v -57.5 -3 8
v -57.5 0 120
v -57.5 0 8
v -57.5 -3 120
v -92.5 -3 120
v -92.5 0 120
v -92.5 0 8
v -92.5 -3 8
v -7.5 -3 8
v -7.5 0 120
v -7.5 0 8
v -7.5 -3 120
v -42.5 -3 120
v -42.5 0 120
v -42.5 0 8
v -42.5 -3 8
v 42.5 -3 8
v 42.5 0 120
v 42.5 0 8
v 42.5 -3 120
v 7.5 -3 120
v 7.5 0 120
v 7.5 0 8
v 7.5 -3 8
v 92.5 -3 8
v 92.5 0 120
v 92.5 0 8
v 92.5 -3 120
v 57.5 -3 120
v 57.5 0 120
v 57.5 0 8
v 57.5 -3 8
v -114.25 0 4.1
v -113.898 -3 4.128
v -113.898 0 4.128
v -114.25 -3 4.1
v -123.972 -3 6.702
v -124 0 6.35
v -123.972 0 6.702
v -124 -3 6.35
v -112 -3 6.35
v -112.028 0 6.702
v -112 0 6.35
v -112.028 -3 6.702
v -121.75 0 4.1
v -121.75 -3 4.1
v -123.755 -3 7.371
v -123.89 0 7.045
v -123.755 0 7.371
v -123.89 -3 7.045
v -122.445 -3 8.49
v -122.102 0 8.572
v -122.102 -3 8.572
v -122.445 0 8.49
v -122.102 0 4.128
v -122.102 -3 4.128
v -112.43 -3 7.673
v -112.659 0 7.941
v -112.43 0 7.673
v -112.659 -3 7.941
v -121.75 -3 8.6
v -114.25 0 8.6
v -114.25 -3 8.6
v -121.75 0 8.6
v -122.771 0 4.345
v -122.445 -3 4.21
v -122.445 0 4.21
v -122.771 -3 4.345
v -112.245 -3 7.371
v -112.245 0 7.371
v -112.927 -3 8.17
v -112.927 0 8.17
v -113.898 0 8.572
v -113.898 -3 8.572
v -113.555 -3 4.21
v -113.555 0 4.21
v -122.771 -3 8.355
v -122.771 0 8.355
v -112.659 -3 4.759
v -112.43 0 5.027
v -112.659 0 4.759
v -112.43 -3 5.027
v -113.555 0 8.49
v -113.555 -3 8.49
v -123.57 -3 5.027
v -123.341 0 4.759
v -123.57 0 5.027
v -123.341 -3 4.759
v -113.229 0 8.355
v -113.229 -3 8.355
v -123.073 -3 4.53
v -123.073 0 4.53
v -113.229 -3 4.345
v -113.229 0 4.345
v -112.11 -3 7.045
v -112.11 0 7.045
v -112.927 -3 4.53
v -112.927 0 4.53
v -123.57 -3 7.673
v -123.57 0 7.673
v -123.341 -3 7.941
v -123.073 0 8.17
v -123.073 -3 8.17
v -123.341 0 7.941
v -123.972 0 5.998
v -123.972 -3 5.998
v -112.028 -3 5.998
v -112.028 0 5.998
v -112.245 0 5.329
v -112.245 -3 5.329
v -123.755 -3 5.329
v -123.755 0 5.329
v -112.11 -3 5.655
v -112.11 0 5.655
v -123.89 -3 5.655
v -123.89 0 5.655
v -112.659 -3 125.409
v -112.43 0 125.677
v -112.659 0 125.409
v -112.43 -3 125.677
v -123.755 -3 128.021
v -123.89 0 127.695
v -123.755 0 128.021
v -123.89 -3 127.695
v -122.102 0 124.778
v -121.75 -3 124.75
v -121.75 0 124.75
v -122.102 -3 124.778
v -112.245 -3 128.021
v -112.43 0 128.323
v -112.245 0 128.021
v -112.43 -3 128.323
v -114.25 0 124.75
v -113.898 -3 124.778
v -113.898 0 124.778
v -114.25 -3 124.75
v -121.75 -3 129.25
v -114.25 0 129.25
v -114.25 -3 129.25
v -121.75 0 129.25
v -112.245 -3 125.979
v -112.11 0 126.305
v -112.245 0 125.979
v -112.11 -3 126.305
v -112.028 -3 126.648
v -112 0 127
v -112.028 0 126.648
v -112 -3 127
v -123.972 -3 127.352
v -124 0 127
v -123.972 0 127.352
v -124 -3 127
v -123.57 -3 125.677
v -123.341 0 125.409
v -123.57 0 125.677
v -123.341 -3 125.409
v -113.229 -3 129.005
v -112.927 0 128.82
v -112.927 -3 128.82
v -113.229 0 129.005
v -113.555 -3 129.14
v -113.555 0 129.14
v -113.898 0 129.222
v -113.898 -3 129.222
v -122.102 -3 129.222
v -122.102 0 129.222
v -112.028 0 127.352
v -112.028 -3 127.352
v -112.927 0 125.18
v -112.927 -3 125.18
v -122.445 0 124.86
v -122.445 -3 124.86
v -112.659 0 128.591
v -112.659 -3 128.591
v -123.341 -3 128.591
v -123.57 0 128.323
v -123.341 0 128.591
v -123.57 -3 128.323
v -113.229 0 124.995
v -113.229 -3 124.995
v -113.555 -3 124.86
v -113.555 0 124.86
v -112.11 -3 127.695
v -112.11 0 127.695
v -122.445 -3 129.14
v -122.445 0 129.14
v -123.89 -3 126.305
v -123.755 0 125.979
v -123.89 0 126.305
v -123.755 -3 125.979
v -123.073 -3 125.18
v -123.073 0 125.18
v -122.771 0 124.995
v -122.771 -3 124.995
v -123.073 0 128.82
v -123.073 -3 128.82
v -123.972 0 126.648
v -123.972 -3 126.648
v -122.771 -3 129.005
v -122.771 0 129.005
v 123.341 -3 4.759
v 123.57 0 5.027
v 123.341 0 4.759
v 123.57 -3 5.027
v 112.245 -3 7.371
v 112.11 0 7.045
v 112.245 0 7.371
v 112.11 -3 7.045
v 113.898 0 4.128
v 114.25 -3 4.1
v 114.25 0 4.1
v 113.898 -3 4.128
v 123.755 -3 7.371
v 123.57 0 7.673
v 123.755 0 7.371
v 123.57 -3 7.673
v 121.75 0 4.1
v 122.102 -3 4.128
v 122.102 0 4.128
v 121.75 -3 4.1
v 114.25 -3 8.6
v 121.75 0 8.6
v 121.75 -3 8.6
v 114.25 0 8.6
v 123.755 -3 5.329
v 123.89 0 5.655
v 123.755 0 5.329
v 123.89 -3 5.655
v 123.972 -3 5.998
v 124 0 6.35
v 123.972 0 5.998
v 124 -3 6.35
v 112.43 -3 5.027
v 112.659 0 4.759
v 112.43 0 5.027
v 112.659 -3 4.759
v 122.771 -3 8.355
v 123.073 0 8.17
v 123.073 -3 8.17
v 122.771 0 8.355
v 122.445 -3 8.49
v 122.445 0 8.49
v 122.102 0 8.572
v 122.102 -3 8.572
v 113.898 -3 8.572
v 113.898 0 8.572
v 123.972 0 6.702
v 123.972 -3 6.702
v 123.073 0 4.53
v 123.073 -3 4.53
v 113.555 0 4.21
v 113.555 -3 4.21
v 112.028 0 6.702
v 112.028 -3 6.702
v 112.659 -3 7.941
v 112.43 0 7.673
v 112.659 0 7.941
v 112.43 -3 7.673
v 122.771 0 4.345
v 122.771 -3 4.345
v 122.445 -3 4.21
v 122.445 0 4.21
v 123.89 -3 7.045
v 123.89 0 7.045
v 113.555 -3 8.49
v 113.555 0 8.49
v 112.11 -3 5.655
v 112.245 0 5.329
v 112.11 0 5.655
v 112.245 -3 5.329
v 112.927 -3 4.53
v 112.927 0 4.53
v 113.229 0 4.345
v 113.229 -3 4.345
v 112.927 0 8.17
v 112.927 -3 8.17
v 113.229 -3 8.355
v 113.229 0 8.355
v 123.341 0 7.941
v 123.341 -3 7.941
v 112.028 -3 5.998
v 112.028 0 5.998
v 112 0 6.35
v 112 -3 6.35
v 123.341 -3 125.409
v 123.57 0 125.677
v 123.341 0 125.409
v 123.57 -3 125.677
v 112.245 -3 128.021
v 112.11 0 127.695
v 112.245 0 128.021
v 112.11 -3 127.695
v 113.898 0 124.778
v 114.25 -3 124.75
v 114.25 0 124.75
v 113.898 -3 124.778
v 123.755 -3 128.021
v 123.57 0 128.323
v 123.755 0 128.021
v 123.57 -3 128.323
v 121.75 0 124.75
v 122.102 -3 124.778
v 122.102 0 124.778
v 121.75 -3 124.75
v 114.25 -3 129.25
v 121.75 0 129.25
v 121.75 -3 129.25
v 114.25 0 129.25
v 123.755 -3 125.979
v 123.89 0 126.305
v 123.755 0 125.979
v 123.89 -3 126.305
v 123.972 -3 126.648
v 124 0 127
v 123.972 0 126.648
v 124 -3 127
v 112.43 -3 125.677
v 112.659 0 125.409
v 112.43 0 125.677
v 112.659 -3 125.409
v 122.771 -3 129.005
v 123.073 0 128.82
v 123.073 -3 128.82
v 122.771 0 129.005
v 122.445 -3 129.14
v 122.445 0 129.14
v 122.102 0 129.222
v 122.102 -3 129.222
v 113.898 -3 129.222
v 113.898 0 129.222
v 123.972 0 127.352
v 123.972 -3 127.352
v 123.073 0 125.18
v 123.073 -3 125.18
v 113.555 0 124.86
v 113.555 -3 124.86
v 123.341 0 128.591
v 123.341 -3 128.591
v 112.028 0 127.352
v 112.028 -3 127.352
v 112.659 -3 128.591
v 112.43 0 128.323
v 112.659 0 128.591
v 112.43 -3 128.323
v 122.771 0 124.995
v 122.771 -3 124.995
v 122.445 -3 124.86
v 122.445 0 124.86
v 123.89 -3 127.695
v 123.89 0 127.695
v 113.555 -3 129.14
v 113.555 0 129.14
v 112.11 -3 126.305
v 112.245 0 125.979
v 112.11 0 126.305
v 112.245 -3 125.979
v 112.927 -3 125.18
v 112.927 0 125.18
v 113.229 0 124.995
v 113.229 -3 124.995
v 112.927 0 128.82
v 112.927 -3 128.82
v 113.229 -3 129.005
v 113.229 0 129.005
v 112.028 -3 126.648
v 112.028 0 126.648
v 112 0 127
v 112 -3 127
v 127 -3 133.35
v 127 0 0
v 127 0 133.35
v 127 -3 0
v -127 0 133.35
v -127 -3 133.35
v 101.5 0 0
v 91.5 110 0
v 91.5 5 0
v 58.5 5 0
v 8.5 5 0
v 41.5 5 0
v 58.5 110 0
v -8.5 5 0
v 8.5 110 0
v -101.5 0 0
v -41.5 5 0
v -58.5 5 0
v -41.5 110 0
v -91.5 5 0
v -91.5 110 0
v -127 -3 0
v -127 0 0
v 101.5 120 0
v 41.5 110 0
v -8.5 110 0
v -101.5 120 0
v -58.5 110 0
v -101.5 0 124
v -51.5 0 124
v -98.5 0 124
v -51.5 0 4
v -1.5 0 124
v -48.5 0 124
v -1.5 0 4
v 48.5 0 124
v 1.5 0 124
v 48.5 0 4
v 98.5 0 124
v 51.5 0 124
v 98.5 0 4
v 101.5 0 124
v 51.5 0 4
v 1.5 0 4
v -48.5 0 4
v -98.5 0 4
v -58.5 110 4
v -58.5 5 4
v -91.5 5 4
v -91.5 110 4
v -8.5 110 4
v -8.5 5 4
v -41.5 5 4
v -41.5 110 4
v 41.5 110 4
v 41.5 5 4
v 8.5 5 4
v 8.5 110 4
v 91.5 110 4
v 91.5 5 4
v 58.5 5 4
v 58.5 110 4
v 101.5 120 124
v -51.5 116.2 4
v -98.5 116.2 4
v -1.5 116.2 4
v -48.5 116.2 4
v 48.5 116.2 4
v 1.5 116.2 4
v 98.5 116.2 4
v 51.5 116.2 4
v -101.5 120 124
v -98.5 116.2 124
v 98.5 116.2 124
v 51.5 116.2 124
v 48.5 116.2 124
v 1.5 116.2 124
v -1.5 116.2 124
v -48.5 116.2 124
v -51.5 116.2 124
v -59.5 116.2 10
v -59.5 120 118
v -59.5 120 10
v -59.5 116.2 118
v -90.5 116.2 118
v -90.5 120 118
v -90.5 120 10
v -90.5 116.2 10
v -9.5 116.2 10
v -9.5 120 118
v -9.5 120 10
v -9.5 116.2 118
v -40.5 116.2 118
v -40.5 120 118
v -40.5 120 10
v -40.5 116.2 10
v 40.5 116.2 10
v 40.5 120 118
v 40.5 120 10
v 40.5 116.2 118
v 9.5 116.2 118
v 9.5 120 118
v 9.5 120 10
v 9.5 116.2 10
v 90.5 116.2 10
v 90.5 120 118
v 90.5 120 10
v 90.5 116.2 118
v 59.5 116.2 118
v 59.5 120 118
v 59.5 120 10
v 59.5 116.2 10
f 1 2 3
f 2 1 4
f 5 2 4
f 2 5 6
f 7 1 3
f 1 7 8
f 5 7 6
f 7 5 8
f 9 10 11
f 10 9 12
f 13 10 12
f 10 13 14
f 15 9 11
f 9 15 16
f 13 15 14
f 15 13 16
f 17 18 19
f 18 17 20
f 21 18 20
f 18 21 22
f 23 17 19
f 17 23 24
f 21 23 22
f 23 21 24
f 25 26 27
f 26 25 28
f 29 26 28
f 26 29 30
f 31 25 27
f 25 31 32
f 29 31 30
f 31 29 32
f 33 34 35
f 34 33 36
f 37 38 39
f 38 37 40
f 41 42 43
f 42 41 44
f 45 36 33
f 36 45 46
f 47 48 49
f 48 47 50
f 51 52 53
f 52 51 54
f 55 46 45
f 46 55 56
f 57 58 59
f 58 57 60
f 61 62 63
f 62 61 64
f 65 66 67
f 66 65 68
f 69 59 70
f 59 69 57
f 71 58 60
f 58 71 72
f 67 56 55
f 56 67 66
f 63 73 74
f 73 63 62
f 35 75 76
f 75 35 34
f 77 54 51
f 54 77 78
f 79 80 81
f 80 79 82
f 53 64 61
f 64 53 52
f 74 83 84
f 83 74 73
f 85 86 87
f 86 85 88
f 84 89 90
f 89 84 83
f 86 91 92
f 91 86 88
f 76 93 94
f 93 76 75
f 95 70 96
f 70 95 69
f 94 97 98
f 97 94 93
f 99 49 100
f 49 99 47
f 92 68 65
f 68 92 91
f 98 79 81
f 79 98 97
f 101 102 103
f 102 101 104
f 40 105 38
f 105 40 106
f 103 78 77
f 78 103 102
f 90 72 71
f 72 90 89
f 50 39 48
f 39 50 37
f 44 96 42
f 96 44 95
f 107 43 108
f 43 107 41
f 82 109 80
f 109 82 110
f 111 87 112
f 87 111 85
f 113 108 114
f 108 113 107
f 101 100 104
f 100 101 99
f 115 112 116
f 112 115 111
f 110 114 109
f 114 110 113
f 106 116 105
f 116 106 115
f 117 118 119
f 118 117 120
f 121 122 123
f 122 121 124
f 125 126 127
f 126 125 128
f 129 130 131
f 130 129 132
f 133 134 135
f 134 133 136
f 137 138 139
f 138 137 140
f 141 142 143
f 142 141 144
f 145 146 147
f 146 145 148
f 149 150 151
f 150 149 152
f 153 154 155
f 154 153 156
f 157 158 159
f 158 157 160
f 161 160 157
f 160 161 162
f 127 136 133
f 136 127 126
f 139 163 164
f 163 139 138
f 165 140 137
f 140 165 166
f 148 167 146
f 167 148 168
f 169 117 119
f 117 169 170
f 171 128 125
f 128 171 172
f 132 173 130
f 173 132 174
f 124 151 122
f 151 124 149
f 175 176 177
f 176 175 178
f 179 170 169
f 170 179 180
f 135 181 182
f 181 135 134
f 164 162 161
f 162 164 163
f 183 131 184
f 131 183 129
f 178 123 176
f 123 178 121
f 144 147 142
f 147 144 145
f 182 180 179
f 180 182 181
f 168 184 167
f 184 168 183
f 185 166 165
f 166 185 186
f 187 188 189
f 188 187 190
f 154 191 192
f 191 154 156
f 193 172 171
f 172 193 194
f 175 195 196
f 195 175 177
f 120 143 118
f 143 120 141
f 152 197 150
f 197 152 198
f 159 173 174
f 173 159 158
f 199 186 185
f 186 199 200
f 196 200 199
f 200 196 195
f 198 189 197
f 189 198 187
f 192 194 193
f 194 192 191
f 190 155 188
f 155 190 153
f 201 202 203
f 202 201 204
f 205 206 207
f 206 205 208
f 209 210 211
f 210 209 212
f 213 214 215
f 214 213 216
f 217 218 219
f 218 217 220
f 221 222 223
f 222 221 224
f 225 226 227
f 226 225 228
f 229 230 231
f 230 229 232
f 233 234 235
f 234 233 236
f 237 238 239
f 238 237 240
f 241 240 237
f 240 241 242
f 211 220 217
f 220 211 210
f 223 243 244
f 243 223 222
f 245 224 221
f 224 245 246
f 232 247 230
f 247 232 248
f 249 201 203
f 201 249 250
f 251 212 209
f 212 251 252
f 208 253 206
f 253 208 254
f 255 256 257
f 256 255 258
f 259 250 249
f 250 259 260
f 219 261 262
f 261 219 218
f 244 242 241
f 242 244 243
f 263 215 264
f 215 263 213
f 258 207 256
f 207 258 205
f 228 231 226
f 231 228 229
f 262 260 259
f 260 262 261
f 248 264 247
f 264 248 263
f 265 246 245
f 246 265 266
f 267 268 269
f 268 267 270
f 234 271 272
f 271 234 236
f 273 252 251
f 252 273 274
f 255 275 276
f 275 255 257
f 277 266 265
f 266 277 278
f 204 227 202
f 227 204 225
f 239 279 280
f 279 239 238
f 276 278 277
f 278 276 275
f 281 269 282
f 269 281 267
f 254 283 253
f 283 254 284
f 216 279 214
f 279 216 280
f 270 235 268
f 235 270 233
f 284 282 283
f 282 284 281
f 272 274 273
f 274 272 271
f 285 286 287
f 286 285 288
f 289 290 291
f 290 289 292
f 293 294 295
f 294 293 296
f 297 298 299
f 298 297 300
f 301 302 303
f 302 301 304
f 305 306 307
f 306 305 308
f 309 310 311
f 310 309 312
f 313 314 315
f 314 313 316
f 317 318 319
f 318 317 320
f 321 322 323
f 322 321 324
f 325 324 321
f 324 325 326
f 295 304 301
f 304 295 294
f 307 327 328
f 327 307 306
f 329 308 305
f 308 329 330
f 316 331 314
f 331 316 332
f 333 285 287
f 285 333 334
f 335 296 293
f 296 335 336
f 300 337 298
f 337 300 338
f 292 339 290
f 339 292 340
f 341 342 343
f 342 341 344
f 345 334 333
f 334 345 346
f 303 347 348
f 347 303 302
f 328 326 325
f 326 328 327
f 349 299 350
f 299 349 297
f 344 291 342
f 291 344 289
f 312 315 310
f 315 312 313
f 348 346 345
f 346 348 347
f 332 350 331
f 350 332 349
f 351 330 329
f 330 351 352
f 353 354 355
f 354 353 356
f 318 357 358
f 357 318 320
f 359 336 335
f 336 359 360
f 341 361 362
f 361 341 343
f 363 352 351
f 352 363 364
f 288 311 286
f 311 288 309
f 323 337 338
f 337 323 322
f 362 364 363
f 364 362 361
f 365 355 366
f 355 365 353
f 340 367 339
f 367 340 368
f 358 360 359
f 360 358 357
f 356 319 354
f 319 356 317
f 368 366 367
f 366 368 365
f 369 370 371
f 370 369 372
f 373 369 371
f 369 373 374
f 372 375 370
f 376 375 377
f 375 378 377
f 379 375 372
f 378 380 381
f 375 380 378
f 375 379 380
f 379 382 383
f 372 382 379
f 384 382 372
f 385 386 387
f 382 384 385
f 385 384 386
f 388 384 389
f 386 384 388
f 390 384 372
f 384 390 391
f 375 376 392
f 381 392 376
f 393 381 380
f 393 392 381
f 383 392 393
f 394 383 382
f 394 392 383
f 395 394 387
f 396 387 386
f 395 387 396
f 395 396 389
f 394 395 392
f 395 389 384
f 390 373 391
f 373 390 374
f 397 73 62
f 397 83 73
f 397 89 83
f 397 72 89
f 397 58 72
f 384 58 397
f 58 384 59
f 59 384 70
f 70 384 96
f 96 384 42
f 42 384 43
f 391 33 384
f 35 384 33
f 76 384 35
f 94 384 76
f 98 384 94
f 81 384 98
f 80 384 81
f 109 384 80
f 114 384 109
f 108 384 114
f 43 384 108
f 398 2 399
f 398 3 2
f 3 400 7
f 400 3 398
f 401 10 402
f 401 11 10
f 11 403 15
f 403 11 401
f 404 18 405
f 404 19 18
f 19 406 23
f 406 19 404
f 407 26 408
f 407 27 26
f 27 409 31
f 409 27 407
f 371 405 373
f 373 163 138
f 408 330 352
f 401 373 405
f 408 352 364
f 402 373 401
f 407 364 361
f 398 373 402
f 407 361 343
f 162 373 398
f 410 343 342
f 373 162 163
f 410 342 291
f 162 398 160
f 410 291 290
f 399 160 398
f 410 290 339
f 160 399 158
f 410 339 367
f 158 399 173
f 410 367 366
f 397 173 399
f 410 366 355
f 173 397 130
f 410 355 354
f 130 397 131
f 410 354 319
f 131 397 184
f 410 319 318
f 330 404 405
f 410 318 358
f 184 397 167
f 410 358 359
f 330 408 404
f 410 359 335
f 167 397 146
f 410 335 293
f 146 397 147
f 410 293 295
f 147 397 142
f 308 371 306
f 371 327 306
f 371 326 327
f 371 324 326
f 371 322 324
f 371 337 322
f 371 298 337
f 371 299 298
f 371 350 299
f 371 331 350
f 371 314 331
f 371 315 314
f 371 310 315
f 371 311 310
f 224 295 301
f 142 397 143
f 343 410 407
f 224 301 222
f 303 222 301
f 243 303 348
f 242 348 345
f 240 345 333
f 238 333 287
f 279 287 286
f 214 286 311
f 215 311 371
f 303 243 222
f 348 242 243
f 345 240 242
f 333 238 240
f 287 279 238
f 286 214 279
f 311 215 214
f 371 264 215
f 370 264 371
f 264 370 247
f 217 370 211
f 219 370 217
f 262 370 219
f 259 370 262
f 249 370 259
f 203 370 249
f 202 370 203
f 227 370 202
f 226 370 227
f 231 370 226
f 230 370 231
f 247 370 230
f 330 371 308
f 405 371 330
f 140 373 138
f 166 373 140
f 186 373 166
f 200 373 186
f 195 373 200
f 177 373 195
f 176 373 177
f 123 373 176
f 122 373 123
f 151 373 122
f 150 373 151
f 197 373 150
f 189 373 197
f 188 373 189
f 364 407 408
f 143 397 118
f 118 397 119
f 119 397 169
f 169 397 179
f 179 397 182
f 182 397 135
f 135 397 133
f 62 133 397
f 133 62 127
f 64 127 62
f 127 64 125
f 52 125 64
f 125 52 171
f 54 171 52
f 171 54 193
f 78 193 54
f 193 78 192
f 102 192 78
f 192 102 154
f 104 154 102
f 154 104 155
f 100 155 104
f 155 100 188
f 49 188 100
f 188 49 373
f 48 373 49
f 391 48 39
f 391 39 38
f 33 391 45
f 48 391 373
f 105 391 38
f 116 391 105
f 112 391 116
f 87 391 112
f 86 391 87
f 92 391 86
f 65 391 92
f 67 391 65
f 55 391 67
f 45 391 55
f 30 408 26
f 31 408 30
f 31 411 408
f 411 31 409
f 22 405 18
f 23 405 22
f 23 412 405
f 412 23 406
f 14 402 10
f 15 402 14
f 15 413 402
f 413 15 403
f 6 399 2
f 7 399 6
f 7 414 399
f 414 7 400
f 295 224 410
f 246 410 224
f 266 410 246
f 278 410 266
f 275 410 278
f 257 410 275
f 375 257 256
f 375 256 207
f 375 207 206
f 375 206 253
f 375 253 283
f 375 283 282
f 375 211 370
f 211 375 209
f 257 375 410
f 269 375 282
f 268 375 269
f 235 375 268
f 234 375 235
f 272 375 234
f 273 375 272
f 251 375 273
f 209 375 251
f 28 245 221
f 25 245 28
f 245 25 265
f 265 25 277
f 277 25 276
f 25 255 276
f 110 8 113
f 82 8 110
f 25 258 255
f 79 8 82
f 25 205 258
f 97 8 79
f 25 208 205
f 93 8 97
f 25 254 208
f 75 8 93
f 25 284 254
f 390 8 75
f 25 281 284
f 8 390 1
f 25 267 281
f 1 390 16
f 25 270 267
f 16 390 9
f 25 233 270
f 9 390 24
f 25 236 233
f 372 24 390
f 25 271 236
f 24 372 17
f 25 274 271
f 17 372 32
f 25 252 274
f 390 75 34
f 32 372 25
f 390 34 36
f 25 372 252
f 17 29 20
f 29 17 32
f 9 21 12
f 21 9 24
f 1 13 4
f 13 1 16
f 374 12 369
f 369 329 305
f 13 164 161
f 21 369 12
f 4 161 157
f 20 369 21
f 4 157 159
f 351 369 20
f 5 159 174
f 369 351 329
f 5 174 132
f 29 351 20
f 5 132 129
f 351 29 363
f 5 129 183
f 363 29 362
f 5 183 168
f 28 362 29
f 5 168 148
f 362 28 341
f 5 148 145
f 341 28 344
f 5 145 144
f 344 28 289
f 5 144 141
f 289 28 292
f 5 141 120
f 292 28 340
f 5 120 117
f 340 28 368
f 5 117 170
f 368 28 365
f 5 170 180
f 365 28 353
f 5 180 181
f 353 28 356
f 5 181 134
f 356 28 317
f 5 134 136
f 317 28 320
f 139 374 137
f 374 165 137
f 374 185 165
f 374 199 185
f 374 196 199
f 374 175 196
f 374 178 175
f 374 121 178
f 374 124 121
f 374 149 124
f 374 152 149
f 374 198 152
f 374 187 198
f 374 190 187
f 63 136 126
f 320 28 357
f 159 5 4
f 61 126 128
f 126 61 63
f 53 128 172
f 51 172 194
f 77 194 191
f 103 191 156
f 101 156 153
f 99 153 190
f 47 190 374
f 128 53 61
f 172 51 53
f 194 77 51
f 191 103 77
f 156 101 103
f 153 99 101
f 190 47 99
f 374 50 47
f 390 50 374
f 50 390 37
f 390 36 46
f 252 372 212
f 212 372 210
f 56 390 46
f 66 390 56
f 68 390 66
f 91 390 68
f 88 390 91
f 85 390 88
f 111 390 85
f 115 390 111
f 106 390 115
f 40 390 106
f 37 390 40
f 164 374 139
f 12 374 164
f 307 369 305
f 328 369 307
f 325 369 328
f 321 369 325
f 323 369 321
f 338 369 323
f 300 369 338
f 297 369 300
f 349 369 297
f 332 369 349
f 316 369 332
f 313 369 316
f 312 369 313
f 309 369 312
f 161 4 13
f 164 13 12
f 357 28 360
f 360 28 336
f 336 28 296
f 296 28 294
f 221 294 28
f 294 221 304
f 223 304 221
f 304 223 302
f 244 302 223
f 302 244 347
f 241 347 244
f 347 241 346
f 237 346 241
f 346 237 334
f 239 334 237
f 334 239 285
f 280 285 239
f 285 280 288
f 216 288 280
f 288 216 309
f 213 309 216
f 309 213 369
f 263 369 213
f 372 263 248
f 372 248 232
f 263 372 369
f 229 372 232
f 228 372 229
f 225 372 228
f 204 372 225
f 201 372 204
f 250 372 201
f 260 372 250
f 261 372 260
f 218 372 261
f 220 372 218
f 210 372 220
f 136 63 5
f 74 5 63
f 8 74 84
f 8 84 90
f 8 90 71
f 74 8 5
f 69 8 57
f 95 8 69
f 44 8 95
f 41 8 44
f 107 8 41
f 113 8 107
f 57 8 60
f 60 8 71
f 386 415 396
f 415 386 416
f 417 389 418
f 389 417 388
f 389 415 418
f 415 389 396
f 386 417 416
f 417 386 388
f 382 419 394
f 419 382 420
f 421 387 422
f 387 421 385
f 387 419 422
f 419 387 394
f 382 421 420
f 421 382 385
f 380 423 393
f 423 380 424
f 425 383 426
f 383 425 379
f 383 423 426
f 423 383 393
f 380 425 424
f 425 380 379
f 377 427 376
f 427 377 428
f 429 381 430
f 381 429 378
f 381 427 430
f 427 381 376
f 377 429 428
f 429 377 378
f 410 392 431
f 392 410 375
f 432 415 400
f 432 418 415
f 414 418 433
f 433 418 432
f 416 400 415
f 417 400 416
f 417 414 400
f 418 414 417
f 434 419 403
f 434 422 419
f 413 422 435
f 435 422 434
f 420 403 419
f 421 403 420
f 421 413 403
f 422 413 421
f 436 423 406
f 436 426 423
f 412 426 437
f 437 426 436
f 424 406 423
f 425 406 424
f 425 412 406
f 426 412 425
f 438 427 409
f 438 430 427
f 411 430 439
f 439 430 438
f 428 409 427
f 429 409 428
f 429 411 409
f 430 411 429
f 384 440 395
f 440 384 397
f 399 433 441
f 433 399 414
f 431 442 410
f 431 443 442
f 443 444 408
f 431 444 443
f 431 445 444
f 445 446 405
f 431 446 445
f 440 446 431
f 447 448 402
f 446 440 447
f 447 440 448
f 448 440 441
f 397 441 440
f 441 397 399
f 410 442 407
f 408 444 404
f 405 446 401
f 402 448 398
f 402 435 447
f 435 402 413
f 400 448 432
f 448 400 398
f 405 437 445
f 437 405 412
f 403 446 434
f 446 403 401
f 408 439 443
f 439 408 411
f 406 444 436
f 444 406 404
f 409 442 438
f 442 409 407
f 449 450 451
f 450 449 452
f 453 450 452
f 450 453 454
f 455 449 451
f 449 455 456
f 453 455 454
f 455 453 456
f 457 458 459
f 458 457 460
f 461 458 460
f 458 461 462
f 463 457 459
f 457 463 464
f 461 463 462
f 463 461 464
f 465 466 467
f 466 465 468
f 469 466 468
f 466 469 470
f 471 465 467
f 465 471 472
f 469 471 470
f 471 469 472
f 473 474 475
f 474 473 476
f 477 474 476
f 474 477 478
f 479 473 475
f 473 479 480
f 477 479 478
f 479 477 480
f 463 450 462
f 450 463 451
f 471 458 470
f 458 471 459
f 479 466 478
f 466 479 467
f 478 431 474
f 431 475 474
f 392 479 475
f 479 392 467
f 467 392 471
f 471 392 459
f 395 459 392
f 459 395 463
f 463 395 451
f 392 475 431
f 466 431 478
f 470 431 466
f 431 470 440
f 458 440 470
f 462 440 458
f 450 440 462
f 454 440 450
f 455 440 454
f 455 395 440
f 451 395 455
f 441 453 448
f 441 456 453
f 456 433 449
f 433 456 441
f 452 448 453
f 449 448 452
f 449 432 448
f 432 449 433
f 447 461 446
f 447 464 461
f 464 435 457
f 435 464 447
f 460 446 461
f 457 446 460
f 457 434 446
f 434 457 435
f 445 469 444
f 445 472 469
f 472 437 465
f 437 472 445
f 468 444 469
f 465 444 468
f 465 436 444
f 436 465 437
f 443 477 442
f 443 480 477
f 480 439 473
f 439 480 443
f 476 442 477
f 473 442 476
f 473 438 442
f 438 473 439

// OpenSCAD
// =============================================================================
//  10" Rack 4-bay vertical mount for AMD Ryzen 7 mini PCs
//  Target rack : DeskPi RackMate (10-inch / "mini rack"), 3U faceplate
//
//  Each PC stands VERTICALLY on its thin (43mm) edge so several pack across
//  one faceplate. Power-button face -> rack FRONT (window), rear ports -> BACK.
//  Because the units are packed across, the big sticker faces sit next to the
//  dividers and the VENTS end up on the TOP and BOTTOM -> vertical convection:
//  cool air in through the open floor, hot air out the open top.
//
//  Units are millimetres. Print flat on the faceplate.
//  Cradle STL:        openscad -o mount4.stl minipc_10in_rack_4bay.scad
//  Preview with PCs:  openscad -D show_pc=true ...
// =============================================================================

// ---- Mini PC, oriented for vertical packing (measured outer size) ----------
slot_across = 43;    // X : device THICKNESS  -> packed across the rack
slot_high   = 120;   // Z : device WIDTH      -> now the vertical height
slot_deep   = 115;   // Y : device DEPTH      -> into the rack (front=power)
clr         = 2.0;   // clearance around the PC in its bay

n_bays      = 4;     // how many PCs across

// ---- 10" rack interface ----  *** VERIFY THESE AGAINST YOUR RACK ***  -------
u_mm     = 44.45;   // 1U
units    = 3;       // faceplate height in U (a 120mm-tall PC needs 3U)
panel_w  = 254;     // 10-inch faceplate width
hole_dx  = 236;     // center-to-center between the LEFT and RIGHT rail holes
edge_z   = 6.35;    // rail hole inset from top/bottom (EIA 0.25")
screw_d  = 4.5;     // M4 clearance hole (use 6.5 for M6 racks)
slot_len = 12;      // horizontal mount-slot length -> tolerance for hole_dx

// ---- Structure --------------------------------------------------------------
face_t      = 3.0;   // front faceplate thickness
base        = 4.0;   // floor thickness
div_t       = 3.0;   // divider / outer-wall thickness
wall        = 3.0;   // back wall thickness
ledge       = 5.0;   // floor ledge the PC rests on (rest is open for venting)
front_lip   = 4.0;   // faceplate overlap onto the PC front bezel (retains PC)
back_margin = 6.0;   // back-wall overlap onto the PC rear edges (retains PC)
back_gap    = 2.0;   // depth clearance behind the PC
ov          = 0.8;   // interference overlap so everything fuses into one solid

show_pc = false;     // true = draw ghost PCs for previews (NOT part of STL)
$fn = 40;

// ---- Derived ----------------------------------------------------------------
panel_h = units * u_mm;                       // 133.35 for 3U
bay_w   = slot_across + 2*clr;                // inner bay width
pitch   = bay_w + div_t;                      // bay-to-bay spacing
total_w = n_bays*bay_w + (n_bays + 1)*div_t;  // overall cradle width
floor_d = slot_deep + back_gap;               // floor / divider depth
dev_z0  = base;                               // PC rests on the floor ledge
top_z   = dev_z0 + slot_high;                 // PC top (divider/back-wall top)
win_zc  = dev_z0 + slot_high/2;               // window vertical center
win_w   = slot_across - 2*front_lip;          // front window width
win_h   = slot_high   - 2*front_lip;          // front window height

function bay_cx(i) = -total_w/2 + div_t + bay_w/2 + i*pitch;   // bay X center

// =============================================================================
//  Helpers
// =============================================================================
module xslot(len, d, depth) {                 // horizontal slot bored along +Y
    hull() for (s = [-1, 1])
        translate([s*(len - d)/2, 0, 0])
            rotate([-90, 0, 0]) cylinder(d = d, h = depth);
}

// =============================================================================
//  Parts
// =============================================================================
module faceplate() {
    difference() {
        translate([-panel_w/2, -face_t, 0]) cube([panel_w, face_t, panel_h]);

        // Per-bay front window (power button / USB-C / USB-A / audio)
        for (i = [0:n_bays-1])
            translate([bay_cx(i) - win_w/2, -face_t - 1, win_zc - win_h/2])
                cube([win_w, face_t + 2, win_h]);

        // Four rail mounting slots (top + bottom of the 3U panel)
        for (sx = [-1, 1], sz = [edge_z, panel_h - edge_z])
            translate([sx*hole_dx/2, -face_t - 1, sz])
                xslot(slot_len, screw_d, face_t + 2);
    }
}

module backwall() {
    bw_w = slot_across - 2*back_margin;
    bw_h = slot_high   - 2*back_margin;
    difference() {
        translate([-total_w/2, floor_d - ov, 0])
            cube([total_w, wall + ov, top_z]);
        for (i = [0:n_bays-1])
            translate([bay_cx(i) - bw_w/2, floor_d - ov - 1, win_zc - bw_h/2])
                cube([bw_w, wall + 2, bw_h]);
    }
}

module floor_and_dividers() {
    // Ventilated floor: a ledge frame per bay, open in the middle
    difference() {
        translate([-total_w/2, -ov, 0]) cube([total_w, floor_d + ov, base]);
        for (i = [0:n_bays-1])
            translate([bay_cx(i) - (slot_across/2 - ledge), ledge, -1])
                cube([slot_across - 2*ledge, slot_deep - 2*ledge, base + 2]);
    }

    // n+1 dividers / outer walls, full PC height
    for (i = [0:n_bays])
        translate([-total_w/2 + i*pitch, -ov, 0])
            cube([div_t, floor_d + ov, top_z]);
}

module ghost_pcs() {
    color([0.25, 0.4, 0.55, 0.45])
        for (i = [0:n_bays-1])
            translate([bay_cx(i) - slot_across/2, 0, dev_z0])
                cube([slot_across, slot_deep, slot_high]);
}

module assembly() {
    color([0.85, 0.85, 0.88]) {
        faceplate();
        floor_and_dividers();
        backwall();
    }
    if (show_pc) ghost_pcs();
}

assembly();
